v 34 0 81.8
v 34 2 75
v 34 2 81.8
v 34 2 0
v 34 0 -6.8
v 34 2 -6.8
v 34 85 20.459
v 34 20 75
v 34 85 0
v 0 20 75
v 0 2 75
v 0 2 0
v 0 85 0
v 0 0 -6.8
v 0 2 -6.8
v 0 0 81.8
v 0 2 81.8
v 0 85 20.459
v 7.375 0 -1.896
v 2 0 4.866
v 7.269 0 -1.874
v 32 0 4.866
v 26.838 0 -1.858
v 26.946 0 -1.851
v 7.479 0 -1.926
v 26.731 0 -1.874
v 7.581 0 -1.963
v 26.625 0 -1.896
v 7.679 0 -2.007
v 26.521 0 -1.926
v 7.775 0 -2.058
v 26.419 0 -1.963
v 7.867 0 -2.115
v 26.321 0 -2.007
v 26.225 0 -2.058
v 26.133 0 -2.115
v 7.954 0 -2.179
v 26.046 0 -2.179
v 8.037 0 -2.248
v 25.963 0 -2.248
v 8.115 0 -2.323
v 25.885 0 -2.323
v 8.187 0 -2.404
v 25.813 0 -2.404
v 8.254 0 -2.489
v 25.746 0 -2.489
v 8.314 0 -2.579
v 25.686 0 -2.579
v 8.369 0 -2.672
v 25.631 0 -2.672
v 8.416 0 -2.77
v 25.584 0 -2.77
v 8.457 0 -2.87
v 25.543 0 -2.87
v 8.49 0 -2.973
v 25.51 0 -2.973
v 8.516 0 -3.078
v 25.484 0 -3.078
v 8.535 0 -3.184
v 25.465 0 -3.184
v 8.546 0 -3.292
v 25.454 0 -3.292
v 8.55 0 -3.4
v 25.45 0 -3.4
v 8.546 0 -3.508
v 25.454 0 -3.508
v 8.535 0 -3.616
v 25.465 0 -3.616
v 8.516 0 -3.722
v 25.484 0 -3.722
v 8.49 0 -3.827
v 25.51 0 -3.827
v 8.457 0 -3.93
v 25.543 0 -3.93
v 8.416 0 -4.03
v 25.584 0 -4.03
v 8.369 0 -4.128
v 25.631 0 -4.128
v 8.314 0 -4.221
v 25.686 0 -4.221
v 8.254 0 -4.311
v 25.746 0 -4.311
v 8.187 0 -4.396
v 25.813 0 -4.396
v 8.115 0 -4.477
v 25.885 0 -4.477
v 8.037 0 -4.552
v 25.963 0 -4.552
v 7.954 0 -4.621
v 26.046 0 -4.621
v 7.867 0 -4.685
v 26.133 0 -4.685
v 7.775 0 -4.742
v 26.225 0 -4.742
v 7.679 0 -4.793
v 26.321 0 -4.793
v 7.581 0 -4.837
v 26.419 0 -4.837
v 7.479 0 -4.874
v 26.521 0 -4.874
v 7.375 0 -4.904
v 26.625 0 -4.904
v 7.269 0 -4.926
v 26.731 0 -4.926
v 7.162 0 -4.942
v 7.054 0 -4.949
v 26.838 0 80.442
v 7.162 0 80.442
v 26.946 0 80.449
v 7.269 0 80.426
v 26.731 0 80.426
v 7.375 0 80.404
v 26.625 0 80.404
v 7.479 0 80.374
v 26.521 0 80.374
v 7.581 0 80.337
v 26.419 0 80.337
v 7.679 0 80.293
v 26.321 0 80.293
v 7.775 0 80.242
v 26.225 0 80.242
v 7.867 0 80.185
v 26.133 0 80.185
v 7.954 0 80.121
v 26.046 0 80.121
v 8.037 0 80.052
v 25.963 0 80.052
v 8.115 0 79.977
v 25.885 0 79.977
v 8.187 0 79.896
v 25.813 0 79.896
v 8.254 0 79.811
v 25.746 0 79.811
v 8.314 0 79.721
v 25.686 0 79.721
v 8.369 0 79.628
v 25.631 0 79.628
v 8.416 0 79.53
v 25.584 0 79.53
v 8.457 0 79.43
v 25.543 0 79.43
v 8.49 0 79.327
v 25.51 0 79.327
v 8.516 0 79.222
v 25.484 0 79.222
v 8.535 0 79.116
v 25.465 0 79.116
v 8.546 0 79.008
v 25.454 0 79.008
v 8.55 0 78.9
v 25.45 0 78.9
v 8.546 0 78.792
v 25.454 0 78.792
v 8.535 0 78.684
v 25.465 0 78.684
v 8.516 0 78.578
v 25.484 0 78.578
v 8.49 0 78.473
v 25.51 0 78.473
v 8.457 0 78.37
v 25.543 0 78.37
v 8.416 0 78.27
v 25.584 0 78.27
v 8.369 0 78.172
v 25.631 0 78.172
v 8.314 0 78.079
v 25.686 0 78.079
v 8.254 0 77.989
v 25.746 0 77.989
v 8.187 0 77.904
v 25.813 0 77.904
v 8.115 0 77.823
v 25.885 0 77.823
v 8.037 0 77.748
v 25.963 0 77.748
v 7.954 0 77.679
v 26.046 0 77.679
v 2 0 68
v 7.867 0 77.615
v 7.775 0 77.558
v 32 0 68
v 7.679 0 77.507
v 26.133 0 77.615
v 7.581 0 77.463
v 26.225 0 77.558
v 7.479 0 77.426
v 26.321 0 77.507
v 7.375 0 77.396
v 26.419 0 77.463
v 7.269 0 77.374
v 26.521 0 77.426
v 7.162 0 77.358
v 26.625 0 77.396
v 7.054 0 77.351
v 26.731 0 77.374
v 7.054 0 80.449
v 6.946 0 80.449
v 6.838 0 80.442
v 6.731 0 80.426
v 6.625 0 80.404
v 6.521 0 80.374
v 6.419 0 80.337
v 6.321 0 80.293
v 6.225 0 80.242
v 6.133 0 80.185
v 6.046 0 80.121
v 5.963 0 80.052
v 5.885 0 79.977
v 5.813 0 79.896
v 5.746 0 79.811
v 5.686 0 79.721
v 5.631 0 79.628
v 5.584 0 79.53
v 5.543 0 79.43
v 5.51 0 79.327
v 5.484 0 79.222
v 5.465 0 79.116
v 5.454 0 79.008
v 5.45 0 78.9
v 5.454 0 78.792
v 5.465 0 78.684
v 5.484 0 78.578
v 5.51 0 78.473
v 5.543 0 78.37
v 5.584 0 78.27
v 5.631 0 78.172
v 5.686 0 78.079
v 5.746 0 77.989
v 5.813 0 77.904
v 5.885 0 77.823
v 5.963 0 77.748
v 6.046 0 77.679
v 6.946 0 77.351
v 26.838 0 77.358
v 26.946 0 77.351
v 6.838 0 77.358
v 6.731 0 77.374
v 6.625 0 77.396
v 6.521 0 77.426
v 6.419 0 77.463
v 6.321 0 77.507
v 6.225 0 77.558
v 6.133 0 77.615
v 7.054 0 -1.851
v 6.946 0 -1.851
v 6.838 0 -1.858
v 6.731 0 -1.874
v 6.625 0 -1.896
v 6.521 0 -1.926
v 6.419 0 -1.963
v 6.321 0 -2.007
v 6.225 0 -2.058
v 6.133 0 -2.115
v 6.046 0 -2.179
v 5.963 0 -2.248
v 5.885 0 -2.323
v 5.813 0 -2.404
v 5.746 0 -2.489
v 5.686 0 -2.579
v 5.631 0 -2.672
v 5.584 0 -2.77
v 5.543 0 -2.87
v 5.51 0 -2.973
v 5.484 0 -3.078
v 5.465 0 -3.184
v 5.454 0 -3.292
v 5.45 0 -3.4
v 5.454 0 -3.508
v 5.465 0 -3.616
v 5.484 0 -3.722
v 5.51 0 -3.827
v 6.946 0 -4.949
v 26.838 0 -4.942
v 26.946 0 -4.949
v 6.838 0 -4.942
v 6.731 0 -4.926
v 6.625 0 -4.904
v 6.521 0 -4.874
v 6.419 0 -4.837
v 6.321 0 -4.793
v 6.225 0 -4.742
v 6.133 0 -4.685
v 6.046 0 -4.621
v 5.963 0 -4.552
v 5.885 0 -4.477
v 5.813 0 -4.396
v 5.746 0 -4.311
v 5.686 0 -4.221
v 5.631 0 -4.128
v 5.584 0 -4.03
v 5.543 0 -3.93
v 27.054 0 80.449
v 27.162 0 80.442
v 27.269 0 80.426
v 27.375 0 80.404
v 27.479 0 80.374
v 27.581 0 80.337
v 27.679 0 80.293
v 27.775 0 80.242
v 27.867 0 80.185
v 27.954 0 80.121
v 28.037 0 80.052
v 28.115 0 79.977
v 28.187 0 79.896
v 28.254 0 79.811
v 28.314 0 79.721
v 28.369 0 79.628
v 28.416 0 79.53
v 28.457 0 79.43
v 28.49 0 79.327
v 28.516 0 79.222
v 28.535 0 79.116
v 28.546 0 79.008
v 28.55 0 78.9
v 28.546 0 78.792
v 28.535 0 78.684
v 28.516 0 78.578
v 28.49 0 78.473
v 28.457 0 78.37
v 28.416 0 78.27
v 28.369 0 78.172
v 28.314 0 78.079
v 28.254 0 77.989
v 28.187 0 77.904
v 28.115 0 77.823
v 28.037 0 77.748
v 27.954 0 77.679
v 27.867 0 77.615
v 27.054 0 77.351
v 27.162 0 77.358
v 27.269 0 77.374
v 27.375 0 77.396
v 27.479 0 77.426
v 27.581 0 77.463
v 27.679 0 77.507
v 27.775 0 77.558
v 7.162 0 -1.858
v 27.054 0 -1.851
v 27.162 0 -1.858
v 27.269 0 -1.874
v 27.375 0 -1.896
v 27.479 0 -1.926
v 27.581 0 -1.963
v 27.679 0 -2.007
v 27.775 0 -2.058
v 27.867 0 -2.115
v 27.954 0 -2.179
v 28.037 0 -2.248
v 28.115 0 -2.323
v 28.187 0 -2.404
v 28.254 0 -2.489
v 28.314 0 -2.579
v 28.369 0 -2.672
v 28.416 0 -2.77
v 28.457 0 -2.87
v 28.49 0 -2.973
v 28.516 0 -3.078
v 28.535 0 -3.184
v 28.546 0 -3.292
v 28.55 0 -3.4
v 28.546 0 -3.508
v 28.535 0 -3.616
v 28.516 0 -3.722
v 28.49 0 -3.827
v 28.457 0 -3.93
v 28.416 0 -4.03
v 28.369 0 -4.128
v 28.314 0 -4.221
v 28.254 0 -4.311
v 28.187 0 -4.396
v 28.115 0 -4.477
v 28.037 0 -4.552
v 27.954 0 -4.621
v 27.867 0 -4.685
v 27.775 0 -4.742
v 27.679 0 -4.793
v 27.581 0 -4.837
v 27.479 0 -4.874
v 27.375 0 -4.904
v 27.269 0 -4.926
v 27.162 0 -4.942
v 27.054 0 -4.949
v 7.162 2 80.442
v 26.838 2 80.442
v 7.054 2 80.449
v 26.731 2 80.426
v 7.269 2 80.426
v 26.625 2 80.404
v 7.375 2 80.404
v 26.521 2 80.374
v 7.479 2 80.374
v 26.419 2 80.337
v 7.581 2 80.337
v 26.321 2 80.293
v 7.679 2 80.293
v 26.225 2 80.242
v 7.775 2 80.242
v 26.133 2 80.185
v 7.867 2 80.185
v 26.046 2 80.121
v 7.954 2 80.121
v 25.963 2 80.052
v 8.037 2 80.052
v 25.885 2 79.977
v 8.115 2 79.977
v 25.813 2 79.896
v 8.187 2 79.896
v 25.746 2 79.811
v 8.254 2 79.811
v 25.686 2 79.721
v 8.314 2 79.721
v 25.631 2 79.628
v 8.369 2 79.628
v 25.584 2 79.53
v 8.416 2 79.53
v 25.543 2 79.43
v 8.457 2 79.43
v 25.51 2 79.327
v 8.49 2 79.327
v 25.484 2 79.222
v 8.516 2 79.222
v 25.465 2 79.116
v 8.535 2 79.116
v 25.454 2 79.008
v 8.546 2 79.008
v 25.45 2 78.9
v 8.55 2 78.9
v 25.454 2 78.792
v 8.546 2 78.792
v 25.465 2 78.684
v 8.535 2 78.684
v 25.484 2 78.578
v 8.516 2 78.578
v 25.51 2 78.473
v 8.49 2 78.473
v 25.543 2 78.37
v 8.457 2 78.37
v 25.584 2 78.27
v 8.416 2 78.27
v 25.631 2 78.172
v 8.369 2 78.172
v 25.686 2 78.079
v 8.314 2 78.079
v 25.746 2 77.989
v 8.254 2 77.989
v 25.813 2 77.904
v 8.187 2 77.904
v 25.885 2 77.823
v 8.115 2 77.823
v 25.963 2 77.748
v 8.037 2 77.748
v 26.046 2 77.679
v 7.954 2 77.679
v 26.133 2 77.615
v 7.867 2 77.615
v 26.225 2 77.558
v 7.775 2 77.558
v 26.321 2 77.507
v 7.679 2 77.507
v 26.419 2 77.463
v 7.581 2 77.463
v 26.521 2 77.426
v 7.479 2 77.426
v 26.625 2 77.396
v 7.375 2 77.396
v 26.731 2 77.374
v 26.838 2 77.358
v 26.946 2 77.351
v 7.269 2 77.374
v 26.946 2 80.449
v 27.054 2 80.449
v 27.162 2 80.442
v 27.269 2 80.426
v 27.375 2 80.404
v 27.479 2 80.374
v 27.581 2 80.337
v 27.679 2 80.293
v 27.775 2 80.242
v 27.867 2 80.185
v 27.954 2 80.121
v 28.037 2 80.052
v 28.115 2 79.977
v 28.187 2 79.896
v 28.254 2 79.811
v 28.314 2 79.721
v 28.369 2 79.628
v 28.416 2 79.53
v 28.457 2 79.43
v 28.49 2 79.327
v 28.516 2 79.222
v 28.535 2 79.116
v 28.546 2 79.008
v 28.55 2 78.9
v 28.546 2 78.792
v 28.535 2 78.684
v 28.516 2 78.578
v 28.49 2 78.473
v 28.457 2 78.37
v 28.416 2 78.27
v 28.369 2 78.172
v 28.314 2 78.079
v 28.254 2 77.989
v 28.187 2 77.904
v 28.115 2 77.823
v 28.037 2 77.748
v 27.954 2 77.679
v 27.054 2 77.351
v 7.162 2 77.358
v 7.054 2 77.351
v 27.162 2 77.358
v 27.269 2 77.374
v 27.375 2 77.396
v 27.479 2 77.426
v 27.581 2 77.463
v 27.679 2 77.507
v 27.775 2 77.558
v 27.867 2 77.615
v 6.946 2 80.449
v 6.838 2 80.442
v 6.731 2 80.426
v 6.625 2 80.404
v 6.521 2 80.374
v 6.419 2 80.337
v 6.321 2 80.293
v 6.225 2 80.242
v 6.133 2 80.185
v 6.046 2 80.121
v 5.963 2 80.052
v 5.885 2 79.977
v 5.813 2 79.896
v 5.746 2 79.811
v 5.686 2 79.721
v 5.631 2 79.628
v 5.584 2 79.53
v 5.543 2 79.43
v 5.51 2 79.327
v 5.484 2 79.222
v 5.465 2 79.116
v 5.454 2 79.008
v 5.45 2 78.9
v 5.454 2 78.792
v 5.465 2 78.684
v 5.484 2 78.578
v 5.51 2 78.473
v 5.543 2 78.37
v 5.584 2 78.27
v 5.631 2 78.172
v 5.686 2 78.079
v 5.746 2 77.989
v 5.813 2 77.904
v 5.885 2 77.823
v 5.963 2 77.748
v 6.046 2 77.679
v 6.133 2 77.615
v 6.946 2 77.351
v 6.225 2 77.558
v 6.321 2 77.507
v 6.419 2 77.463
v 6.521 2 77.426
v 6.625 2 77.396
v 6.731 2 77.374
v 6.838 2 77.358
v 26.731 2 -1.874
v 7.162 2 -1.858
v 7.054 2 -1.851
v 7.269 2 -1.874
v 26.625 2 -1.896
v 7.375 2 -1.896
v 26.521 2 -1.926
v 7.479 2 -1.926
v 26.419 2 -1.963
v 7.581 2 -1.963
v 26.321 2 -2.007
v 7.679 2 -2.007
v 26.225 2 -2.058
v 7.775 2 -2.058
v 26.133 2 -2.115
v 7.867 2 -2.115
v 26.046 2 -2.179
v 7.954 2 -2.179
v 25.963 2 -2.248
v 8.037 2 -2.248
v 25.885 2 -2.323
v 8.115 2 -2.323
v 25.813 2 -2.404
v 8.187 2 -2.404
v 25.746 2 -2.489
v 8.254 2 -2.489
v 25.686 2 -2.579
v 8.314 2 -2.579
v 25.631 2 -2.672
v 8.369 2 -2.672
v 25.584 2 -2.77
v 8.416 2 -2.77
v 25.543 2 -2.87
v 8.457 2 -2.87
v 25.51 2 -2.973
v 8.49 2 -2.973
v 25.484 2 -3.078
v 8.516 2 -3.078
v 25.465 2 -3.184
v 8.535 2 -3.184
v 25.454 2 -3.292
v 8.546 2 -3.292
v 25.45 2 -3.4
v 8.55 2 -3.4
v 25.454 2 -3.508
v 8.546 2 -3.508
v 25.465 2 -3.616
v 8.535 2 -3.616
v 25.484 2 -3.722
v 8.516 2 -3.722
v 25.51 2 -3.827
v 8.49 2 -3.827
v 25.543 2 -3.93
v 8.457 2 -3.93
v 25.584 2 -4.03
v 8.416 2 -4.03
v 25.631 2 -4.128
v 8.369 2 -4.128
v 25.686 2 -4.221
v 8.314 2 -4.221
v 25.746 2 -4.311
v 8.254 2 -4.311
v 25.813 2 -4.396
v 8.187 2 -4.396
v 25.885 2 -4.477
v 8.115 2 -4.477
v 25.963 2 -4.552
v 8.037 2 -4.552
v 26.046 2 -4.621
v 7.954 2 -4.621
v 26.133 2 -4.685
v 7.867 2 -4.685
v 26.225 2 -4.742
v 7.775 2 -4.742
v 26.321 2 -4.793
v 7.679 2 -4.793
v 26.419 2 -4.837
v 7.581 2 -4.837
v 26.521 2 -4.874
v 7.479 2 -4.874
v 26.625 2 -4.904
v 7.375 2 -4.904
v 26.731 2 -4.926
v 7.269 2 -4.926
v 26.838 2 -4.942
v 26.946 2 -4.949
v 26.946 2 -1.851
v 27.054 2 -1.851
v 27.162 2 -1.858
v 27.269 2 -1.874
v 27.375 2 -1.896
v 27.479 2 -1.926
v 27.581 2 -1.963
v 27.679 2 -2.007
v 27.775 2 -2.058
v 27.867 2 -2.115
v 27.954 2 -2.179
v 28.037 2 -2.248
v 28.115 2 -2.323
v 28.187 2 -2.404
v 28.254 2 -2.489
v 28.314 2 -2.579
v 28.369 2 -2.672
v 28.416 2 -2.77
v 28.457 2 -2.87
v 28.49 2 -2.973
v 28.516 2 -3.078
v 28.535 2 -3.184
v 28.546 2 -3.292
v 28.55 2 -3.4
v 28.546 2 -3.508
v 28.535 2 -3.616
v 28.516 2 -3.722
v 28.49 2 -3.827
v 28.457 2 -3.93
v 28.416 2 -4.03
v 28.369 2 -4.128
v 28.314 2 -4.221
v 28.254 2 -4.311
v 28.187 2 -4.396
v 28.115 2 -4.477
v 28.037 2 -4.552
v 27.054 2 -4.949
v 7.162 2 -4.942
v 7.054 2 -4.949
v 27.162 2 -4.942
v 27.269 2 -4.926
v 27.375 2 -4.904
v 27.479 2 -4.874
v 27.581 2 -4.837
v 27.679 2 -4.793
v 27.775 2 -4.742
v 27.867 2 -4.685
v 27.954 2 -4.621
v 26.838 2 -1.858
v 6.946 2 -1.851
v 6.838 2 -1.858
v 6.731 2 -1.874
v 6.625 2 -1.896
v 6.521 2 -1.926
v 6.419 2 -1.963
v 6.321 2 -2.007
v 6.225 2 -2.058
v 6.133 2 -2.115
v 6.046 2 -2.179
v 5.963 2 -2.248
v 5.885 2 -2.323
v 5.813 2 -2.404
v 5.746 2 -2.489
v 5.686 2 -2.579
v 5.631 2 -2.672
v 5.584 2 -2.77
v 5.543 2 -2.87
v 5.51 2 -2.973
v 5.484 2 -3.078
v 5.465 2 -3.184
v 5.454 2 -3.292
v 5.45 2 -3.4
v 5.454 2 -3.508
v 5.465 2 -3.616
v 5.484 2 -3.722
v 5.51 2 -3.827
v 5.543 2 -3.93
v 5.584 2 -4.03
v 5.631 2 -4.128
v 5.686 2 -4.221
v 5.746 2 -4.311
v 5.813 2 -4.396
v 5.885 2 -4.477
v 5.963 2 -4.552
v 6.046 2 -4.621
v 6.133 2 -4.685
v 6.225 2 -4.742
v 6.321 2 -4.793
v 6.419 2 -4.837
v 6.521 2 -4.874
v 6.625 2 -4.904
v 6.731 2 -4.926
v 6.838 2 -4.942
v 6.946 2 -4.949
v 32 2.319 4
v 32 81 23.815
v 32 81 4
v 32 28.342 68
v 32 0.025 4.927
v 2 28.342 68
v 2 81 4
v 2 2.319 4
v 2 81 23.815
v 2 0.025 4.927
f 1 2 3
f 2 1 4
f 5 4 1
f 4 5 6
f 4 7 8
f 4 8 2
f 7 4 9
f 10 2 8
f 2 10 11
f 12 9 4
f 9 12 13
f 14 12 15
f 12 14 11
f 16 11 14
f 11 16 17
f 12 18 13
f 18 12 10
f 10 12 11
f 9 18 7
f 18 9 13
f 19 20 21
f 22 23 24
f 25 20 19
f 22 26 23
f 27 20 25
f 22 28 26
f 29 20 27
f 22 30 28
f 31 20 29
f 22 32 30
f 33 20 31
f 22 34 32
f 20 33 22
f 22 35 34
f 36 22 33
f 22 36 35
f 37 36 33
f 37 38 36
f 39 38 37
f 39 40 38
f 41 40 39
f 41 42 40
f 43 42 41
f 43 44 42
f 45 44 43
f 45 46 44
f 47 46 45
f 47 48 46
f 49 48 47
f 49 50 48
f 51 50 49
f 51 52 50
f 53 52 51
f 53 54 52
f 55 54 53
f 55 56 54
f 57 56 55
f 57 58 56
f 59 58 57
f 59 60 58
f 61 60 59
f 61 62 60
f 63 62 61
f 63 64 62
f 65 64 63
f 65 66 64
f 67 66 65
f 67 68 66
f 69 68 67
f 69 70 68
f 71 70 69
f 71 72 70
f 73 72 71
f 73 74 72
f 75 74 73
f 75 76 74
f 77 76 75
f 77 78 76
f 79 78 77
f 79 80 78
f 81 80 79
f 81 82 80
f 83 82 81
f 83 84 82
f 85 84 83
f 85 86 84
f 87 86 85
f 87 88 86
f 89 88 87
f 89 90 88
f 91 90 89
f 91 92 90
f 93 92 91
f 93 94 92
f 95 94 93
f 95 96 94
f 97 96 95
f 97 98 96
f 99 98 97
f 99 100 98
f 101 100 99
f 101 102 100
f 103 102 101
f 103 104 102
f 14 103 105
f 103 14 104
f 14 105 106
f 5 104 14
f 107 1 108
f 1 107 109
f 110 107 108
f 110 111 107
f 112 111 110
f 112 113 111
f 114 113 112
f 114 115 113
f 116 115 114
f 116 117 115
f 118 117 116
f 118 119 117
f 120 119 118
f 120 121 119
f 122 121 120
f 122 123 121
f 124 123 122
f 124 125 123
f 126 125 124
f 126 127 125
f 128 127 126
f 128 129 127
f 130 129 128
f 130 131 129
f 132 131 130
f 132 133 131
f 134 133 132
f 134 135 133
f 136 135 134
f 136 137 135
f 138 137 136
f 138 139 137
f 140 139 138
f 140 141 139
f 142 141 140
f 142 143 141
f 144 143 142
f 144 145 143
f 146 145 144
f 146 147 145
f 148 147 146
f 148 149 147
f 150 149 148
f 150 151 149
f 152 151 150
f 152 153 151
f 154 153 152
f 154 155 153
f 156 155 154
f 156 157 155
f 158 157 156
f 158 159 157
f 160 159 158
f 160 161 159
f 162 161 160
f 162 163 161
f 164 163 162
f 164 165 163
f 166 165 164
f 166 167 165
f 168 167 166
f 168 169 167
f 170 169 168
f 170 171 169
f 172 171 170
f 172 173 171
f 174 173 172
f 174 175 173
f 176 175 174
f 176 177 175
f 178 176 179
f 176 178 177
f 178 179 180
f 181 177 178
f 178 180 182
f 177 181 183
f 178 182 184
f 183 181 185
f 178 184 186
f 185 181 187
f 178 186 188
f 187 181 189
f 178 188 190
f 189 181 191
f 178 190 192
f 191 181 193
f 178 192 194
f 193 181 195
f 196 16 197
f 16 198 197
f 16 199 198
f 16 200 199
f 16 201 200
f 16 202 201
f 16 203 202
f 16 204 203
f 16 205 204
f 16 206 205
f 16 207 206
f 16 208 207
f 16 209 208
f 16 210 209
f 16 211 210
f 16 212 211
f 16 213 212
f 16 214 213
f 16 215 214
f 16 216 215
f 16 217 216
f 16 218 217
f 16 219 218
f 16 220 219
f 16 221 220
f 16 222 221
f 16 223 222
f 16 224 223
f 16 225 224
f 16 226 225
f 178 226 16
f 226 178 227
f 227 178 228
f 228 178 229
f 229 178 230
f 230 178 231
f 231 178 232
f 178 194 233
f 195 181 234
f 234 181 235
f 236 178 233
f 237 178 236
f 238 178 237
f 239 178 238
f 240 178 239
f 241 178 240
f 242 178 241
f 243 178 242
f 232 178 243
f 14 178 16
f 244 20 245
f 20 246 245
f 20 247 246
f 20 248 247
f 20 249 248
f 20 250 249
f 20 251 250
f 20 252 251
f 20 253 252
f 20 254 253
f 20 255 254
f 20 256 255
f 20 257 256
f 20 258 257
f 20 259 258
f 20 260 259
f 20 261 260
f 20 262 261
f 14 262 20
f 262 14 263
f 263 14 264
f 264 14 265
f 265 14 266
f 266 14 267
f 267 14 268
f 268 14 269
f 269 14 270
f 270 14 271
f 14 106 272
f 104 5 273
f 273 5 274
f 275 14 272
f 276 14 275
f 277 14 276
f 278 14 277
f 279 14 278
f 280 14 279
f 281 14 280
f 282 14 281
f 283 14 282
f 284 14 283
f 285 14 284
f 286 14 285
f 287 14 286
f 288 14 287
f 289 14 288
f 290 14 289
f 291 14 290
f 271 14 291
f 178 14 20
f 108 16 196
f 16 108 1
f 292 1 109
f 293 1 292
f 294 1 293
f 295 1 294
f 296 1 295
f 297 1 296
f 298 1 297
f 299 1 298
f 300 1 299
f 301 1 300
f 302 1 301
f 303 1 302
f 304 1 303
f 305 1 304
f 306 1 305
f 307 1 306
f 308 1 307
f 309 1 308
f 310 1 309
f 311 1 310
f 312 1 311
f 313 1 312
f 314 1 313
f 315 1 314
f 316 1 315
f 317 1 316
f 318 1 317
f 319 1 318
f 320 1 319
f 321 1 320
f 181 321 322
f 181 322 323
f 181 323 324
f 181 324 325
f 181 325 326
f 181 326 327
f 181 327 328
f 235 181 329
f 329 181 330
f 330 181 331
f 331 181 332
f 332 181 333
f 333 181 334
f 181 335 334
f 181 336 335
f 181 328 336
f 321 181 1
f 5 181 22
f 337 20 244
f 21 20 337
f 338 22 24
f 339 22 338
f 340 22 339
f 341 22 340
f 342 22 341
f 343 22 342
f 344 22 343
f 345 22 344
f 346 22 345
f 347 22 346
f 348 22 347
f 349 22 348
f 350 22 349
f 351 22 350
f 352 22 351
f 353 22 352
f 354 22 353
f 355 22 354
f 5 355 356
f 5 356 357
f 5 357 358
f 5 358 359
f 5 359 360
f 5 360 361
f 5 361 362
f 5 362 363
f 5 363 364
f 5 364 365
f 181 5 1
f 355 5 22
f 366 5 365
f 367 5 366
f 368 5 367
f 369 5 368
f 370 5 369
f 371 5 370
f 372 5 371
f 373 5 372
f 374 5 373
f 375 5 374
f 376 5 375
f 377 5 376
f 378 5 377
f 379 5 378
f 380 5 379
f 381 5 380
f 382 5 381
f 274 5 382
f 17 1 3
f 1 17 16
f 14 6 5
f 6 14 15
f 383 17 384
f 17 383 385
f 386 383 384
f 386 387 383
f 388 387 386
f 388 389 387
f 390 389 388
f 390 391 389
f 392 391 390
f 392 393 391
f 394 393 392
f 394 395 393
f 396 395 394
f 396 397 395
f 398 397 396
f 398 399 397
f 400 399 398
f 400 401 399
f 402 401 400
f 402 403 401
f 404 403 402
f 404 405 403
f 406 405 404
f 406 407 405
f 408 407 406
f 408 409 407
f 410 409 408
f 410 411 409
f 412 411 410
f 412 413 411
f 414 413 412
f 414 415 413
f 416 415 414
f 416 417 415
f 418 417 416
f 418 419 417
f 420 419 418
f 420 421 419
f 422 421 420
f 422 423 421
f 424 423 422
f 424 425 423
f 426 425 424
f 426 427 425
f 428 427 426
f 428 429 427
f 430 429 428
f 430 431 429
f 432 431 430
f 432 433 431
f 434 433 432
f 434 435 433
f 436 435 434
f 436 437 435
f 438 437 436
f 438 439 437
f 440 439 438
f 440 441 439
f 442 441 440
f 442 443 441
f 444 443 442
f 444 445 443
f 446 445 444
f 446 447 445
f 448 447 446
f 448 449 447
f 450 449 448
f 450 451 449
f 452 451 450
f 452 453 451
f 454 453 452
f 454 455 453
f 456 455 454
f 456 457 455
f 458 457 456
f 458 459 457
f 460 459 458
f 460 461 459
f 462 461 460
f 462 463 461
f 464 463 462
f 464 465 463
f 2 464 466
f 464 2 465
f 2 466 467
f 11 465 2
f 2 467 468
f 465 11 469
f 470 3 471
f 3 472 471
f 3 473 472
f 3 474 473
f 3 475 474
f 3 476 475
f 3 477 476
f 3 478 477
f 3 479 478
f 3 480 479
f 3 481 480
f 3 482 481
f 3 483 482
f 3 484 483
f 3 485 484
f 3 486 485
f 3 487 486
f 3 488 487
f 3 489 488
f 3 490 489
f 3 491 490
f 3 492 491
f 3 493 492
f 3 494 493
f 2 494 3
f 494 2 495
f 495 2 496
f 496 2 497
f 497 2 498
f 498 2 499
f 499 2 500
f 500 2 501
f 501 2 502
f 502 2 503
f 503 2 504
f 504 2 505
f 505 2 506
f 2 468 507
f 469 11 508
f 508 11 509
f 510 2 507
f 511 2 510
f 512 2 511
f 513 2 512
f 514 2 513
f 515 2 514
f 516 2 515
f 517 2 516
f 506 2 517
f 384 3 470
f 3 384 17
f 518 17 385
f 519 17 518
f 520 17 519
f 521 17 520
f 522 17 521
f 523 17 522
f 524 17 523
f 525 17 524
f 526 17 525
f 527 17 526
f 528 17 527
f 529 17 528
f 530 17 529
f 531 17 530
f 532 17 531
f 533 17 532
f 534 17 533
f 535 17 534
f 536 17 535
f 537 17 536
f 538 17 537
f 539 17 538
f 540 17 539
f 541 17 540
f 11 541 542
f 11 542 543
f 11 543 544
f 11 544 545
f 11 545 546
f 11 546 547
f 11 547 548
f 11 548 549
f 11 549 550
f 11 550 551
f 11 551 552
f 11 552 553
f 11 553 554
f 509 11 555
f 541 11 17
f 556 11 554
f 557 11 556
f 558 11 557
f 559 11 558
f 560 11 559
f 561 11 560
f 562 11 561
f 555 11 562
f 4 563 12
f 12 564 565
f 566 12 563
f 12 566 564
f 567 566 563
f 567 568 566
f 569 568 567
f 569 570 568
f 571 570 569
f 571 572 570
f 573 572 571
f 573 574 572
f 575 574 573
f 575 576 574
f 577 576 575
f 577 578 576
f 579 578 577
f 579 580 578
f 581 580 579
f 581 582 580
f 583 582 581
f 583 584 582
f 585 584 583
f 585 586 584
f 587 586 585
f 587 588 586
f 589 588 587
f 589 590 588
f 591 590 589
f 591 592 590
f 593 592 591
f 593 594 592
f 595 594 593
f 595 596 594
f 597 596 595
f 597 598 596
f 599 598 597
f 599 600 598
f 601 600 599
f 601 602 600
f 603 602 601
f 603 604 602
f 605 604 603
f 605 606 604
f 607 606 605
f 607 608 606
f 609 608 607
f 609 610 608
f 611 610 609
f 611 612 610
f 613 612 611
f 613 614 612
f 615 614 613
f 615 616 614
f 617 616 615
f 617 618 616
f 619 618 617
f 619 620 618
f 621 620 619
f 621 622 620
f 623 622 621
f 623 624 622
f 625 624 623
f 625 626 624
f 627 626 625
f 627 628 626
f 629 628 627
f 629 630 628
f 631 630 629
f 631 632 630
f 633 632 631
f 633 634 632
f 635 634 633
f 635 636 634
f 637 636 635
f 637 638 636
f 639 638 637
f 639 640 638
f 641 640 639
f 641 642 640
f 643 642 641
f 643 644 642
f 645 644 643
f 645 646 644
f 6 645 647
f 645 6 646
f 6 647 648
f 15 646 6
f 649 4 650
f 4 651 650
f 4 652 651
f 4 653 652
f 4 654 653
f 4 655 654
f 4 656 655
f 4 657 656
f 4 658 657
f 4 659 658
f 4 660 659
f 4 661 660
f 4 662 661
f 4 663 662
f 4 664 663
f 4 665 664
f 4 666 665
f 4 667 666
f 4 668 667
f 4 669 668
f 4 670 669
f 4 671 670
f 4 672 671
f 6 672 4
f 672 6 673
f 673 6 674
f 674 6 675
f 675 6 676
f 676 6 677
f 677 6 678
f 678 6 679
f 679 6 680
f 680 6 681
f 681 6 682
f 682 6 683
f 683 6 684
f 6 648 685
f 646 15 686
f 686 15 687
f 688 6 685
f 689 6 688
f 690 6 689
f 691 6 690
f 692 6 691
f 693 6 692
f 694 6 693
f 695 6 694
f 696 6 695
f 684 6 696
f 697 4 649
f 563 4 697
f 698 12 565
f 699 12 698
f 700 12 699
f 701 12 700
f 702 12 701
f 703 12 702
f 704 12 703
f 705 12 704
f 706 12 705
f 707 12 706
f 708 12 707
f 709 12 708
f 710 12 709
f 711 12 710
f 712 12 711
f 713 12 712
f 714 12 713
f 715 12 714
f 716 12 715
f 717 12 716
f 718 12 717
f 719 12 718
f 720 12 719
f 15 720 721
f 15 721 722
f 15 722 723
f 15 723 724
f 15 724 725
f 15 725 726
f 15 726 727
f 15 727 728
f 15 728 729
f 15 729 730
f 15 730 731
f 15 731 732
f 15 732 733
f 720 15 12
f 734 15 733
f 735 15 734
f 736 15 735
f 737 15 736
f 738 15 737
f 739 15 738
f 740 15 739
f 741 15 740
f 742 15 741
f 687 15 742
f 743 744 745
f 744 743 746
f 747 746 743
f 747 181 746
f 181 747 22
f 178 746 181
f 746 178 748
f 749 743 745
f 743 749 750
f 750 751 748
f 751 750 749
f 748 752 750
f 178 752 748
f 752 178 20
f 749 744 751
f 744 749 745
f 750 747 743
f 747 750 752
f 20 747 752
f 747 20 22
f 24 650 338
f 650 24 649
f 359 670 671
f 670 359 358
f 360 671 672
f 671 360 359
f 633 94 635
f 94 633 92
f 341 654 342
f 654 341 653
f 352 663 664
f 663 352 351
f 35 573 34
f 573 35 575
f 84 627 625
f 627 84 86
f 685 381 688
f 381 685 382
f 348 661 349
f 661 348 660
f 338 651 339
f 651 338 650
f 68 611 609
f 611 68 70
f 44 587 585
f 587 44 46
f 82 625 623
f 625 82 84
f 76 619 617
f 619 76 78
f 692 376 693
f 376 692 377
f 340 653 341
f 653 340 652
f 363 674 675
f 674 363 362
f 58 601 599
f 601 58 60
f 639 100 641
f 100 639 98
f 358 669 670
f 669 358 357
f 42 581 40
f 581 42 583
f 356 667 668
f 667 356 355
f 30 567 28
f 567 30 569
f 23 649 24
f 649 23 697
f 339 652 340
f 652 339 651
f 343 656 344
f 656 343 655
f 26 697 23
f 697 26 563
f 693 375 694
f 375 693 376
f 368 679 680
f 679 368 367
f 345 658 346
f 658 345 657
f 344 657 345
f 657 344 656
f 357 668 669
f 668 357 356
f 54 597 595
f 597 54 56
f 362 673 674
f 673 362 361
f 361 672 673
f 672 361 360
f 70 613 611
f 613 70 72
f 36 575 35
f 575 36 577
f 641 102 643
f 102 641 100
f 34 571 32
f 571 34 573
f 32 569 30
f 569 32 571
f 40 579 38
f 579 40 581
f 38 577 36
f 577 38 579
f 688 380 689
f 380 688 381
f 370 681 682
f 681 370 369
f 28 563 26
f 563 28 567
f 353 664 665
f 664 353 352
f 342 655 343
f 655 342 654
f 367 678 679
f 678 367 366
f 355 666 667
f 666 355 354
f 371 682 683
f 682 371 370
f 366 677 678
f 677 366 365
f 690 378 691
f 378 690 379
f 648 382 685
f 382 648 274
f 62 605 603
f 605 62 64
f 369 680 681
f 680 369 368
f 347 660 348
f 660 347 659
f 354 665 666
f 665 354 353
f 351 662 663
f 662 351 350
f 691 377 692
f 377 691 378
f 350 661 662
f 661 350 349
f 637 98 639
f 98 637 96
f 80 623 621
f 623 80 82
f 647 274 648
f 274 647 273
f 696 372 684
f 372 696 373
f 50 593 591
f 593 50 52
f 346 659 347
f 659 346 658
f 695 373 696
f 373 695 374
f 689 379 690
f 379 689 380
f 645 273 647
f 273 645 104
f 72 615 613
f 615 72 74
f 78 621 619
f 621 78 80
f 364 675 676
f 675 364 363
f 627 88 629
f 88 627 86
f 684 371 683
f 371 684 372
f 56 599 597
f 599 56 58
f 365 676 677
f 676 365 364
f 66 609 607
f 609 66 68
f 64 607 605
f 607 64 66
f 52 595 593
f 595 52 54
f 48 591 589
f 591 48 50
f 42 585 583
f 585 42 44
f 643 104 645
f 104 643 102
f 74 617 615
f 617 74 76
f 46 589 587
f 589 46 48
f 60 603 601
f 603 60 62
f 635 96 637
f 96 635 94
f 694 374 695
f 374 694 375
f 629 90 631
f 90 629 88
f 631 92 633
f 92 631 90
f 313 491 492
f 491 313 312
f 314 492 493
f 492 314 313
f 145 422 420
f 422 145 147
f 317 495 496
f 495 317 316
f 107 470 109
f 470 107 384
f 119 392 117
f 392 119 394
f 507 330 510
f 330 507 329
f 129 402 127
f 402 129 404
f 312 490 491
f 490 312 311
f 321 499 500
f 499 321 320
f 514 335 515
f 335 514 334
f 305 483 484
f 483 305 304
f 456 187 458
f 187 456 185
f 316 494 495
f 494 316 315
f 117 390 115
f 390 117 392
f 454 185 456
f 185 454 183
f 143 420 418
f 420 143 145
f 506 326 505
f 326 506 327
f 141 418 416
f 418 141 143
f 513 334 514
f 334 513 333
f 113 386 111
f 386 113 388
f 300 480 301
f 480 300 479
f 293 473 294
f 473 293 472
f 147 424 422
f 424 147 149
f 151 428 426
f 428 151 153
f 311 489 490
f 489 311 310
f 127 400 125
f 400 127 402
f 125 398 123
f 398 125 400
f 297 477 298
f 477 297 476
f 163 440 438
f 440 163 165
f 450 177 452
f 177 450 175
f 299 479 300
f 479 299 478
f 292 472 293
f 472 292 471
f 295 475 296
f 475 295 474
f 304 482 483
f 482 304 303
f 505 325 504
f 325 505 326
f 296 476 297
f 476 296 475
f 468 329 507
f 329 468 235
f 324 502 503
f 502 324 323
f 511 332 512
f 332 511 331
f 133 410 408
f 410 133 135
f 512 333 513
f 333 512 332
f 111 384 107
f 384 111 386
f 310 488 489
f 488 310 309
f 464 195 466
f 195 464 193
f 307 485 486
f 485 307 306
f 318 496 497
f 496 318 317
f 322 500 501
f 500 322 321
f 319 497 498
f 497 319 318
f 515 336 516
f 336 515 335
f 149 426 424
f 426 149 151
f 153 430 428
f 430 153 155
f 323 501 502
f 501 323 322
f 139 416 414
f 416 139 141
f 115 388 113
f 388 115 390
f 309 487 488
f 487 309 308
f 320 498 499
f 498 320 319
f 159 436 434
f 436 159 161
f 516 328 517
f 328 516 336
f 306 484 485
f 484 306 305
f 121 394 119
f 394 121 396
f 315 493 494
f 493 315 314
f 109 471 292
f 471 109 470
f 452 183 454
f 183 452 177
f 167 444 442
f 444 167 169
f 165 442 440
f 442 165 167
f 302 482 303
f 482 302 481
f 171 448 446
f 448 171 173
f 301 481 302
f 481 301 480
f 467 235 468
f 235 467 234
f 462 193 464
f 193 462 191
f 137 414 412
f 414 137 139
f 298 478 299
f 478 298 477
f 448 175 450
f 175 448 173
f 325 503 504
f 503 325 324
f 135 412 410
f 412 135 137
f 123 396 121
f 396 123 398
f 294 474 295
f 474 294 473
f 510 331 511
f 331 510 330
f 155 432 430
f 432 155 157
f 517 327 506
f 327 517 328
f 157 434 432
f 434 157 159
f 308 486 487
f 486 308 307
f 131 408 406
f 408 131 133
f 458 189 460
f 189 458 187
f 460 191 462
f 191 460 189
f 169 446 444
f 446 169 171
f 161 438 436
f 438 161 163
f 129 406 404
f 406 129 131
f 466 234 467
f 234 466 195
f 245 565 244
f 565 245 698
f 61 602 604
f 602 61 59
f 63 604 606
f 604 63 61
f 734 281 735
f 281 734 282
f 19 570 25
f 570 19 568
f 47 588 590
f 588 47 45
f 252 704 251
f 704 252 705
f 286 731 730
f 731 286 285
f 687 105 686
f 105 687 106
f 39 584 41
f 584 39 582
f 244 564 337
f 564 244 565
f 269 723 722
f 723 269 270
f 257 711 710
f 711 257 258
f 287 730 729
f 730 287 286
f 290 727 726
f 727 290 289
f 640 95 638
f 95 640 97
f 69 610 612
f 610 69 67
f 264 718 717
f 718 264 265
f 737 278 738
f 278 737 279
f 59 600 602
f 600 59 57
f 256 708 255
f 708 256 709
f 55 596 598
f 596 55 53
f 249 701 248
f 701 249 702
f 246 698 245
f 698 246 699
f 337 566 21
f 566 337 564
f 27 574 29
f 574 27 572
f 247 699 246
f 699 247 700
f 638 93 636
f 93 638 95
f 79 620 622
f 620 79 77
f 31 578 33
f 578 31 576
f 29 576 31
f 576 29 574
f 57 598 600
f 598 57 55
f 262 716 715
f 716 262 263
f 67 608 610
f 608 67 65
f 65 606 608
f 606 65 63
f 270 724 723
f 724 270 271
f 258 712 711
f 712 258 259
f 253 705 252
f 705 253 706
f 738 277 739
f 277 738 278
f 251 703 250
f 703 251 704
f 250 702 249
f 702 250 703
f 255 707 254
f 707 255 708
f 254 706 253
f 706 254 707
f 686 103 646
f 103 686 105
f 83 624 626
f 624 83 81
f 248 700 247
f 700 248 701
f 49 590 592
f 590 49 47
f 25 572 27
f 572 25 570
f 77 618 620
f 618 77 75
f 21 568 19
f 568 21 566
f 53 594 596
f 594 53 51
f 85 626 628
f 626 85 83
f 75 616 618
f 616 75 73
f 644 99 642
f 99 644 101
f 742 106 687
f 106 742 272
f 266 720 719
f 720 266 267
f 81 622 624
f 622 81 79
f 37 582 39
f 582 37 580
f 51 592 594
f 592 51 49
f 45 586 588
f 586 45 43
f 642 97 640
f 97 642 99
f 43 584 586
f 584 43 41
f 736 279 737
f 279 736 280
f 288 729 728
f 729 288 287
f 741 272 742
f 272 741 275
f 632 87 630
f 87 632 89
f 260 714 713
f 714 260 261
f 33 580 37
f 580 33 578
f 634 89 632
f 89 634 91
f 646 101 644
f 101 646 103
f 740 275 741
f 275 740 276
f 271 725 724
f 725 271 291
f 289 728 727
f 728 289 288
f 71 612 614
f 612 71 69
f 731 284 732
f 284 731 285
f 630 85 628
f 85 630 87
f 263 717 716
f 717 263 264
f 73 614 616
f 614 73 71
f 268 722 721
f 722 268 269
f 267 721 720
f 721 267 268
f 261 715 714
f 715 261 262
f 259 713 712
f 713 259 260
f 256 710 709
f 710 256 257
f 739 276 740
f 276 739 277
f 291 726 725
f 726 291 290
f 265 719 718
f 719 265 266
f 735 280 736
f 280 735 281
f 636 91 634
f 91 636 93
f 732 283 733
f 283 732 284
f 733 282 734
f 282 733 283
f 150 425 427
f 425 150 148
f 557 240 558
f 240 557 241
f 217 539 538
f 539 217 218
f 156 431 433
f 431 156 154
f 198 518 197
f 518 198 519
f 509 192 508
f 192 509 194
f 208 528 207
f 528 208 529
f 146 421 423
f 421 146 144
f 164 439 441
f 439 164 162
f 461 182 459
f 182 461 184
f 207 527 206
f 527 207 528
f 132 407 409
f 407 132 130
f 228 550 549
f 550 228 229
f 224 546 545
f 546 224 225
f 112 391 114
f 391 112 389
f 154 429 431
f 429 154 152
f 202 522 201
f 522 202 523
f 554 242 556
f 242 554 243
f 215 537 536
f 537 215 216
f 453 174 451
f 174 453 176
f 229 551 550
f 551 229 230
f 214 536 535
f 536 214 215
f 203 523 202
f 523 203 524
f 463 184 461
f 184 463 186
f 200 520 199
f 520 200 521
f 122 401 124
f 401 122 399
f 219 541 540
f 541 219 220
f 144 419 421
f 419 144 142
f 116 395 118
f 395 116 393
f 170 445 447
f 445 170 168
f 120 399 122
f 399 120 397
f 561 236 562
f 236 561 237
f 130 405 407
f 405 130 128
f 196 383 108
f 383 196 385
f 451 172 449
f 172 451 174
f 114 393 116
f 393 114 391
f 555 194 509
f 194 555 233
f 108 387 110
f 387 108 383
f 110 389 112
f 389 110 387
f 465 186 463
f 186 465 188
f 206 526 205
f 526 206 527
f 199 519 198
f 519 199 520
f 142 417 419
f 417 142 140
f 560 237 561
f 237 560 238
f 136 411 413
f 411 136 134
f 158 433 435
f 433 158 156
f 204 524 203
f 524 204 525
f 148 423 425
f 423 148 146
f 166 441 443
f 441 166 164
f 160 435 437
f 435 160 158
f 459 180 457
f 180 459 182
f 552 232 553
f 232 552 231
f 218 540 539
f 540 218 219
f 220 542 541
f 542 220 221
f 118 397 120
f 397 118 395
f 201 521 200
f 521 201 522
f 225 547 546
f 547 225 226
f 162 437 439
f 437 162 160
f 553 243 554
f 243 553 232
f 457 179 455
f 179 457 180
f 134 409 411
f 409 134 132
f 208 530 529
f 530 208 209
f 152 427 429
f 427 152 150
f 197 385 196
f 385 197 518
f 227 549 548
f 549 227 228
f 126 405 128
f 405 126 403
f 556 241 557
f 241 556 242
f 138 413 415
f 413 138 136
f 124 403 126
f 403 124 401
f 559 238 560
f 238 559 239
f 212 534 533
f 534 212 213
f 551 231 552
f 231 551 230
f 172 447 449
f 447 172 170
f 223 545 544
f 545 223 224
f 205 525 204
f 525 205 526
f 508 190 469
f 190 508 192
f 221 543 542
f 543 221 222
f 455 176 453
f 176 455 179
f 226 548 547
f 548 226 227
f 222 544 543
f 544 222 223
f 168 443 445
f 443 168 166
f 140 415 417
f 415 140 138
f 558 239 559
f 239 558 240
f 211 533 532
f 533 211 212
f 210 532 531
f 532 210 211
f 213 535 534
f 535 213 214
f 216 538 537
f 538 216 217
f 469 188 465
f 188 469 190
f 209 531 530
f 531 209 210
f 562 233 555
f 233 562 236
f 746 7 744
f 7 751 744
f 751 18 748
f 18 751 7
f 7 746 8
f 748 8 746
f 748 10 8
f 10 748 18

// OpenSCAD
// file: ../../utils/constants.scad
$fn=90;  // accuracy

/* Server dimentions */

// one server unit
c_1u = 44.45;  

// two server unit
c_2u = c_1u*2; // 88.9

// total width
// The total with of the a server rack (19")
// this includes the mounting holes
c_tw  = 482.6; 

// Total inner width
// The distance between the mounting holes in the server rack
c_tiw = 450;


/* Rack hole dimentions */

// width distance rack holes
c_wdrh = 465;

// height distance rack holes
c_hdrh = 33;


/* dell optiplex 7040 micro usff dimentions */

// dell optiplex 7040 height
c_do7040h = 36;

// dell optiplex 7040 width
c_do7040w = 182;

// dell optiplex 7040 depth
c_do7040d = 179;

// dell optiplex 7040 rubber feet width distance
c_do7040rfwd = 14.9;

// dell optiplex 7040 rubber feet back depth distance
c_do7040rfbdd = 9.9;


/* Case dimentions */

// case height outer 
// A small margin is included to so that the case does not 
// exide two server units
c_2ucho = 88.6; 

// case height inner
// The thickness of the walls can then be calculated as (cho-chi)/2
c_2uchi = 76;

// distance between node holes
c_2udbnh = 82.3;

// case width outer
// as there are three parts of the rack server case we just devide
// the total inner width with three 
c_cwo = c_tiw/3; // 150

// case width inner
// Needs to be less than case width outer
c_cwi = 140;

// case depth thickness
// How thick the case should be. It needs to be thicker than the hight
// of the threaded insert.
c_cdt = 30;

// case inner side thickness
// The middle and the side case over lap so that a screw can be entered
// between the two cases. The cist is defined as the thickness of the part
// that does not overlap between the midle and side case.
c_cist = 3.5;

// nodes per case
c_npc = 7;
// file: linocell-premium-gan-multiladdare-pd-3-0-100-w-holder-module.scad
/* linocellPremiumGanMultiladdarePd30100Wholder
  unt for WD My Passport to be installed in
    rack server node case
    
    chi: case height inner
    cho: case height outer
    dbnh: distance between node holes
    cdt: case depth thickness // TODO: remove ,c_cdt,c_cdt
*/
module linocellPremiumGanMultiladdarePd30100Wholder(chi,cho,dbnh){
  chargerWidth = 61+3;
  chargerDepth = 81;
  chargerThickness = 30;

  caseThickness = (cho-chi)/2;
  nodeHoleDiameter = 3.1;

  holderWallThickness = 2;
  holderThickness = chargerThickness+holderWallThickness*2;
  holderDepth = chargerDepth+holderWallThickness*2;


  module nodeHoles() {
    translate([0,holerThickness,0])
    rotate([90,0,0])
    cylinder(h=holerThickness, d=nodeHoleDiameter);

    translate([dbnh,holerThickness,0])
    rotate([90,0,0])
    cylinder(h=holerThickness, d=nodeHoleDiameter);
  }

  module linocellPremiumGanMultiladdarePd30100W() {
    difference(){
      cube([chargerThickness,chargerDepth,chargerWidth]);

      translate([0,-0.35,0])
      rotate([-22,0,0])
      #cube([chargerThickness,2.5,1]);
    }
  }

  difference() {
    union() {
      cube([holderThickness,holderDepth,chi]);

      translate([0,0,-caseThickness])
      cube([holderThickness,holderWallThickness,cho]);
    }

    union() {
      translate([holderWallThickness,0,4])
      linocellPremiumGanMultiladdarePd30100W();

      // Node holes
      translate([holderThickness/2+10,holderWallThickness,-caseThickness/2])
      rotate([90,0,0])
      cylinder(h=holderWallThickness, d=nodeHoleDiameter);

      translate([holderThickness/2+10,holderWallThickness,-caseThickness/2+dbnh])
      rotate([90,0,0])
      cylinder(h=holderWallThickness, d=nodeHoleDiameter);

      translate([holderThickness/2-10,holderWallThickness,-caseThickness/2])
      rotate([90,0,0])
      cylinder(h=holderWallThickness, d=nodeHoleDiameter);

      translate([holderThickness/2-10,holderWallThickness,-caseThickness/2+dbnh])
      rotate([90,0,0])
      cylinder(h=holderWallThickness, d=nodeHoleDiameter);

      // Air flow
      translate([0,20,chi])
      rotate([-40,0,0])
      cube([holderThickness,holderDepth+2,cho]);
    }
  }
}
// main file
use <linocell-premium-gan-multiladdare-pd-3-0-100-w-holder-module.scad>;
include <../../utils/constants.scad>;

linocellPremiumGanMultiladdarePd30100Wholder(c_2uchi-1,c_2ucho,c_2udbnh);
